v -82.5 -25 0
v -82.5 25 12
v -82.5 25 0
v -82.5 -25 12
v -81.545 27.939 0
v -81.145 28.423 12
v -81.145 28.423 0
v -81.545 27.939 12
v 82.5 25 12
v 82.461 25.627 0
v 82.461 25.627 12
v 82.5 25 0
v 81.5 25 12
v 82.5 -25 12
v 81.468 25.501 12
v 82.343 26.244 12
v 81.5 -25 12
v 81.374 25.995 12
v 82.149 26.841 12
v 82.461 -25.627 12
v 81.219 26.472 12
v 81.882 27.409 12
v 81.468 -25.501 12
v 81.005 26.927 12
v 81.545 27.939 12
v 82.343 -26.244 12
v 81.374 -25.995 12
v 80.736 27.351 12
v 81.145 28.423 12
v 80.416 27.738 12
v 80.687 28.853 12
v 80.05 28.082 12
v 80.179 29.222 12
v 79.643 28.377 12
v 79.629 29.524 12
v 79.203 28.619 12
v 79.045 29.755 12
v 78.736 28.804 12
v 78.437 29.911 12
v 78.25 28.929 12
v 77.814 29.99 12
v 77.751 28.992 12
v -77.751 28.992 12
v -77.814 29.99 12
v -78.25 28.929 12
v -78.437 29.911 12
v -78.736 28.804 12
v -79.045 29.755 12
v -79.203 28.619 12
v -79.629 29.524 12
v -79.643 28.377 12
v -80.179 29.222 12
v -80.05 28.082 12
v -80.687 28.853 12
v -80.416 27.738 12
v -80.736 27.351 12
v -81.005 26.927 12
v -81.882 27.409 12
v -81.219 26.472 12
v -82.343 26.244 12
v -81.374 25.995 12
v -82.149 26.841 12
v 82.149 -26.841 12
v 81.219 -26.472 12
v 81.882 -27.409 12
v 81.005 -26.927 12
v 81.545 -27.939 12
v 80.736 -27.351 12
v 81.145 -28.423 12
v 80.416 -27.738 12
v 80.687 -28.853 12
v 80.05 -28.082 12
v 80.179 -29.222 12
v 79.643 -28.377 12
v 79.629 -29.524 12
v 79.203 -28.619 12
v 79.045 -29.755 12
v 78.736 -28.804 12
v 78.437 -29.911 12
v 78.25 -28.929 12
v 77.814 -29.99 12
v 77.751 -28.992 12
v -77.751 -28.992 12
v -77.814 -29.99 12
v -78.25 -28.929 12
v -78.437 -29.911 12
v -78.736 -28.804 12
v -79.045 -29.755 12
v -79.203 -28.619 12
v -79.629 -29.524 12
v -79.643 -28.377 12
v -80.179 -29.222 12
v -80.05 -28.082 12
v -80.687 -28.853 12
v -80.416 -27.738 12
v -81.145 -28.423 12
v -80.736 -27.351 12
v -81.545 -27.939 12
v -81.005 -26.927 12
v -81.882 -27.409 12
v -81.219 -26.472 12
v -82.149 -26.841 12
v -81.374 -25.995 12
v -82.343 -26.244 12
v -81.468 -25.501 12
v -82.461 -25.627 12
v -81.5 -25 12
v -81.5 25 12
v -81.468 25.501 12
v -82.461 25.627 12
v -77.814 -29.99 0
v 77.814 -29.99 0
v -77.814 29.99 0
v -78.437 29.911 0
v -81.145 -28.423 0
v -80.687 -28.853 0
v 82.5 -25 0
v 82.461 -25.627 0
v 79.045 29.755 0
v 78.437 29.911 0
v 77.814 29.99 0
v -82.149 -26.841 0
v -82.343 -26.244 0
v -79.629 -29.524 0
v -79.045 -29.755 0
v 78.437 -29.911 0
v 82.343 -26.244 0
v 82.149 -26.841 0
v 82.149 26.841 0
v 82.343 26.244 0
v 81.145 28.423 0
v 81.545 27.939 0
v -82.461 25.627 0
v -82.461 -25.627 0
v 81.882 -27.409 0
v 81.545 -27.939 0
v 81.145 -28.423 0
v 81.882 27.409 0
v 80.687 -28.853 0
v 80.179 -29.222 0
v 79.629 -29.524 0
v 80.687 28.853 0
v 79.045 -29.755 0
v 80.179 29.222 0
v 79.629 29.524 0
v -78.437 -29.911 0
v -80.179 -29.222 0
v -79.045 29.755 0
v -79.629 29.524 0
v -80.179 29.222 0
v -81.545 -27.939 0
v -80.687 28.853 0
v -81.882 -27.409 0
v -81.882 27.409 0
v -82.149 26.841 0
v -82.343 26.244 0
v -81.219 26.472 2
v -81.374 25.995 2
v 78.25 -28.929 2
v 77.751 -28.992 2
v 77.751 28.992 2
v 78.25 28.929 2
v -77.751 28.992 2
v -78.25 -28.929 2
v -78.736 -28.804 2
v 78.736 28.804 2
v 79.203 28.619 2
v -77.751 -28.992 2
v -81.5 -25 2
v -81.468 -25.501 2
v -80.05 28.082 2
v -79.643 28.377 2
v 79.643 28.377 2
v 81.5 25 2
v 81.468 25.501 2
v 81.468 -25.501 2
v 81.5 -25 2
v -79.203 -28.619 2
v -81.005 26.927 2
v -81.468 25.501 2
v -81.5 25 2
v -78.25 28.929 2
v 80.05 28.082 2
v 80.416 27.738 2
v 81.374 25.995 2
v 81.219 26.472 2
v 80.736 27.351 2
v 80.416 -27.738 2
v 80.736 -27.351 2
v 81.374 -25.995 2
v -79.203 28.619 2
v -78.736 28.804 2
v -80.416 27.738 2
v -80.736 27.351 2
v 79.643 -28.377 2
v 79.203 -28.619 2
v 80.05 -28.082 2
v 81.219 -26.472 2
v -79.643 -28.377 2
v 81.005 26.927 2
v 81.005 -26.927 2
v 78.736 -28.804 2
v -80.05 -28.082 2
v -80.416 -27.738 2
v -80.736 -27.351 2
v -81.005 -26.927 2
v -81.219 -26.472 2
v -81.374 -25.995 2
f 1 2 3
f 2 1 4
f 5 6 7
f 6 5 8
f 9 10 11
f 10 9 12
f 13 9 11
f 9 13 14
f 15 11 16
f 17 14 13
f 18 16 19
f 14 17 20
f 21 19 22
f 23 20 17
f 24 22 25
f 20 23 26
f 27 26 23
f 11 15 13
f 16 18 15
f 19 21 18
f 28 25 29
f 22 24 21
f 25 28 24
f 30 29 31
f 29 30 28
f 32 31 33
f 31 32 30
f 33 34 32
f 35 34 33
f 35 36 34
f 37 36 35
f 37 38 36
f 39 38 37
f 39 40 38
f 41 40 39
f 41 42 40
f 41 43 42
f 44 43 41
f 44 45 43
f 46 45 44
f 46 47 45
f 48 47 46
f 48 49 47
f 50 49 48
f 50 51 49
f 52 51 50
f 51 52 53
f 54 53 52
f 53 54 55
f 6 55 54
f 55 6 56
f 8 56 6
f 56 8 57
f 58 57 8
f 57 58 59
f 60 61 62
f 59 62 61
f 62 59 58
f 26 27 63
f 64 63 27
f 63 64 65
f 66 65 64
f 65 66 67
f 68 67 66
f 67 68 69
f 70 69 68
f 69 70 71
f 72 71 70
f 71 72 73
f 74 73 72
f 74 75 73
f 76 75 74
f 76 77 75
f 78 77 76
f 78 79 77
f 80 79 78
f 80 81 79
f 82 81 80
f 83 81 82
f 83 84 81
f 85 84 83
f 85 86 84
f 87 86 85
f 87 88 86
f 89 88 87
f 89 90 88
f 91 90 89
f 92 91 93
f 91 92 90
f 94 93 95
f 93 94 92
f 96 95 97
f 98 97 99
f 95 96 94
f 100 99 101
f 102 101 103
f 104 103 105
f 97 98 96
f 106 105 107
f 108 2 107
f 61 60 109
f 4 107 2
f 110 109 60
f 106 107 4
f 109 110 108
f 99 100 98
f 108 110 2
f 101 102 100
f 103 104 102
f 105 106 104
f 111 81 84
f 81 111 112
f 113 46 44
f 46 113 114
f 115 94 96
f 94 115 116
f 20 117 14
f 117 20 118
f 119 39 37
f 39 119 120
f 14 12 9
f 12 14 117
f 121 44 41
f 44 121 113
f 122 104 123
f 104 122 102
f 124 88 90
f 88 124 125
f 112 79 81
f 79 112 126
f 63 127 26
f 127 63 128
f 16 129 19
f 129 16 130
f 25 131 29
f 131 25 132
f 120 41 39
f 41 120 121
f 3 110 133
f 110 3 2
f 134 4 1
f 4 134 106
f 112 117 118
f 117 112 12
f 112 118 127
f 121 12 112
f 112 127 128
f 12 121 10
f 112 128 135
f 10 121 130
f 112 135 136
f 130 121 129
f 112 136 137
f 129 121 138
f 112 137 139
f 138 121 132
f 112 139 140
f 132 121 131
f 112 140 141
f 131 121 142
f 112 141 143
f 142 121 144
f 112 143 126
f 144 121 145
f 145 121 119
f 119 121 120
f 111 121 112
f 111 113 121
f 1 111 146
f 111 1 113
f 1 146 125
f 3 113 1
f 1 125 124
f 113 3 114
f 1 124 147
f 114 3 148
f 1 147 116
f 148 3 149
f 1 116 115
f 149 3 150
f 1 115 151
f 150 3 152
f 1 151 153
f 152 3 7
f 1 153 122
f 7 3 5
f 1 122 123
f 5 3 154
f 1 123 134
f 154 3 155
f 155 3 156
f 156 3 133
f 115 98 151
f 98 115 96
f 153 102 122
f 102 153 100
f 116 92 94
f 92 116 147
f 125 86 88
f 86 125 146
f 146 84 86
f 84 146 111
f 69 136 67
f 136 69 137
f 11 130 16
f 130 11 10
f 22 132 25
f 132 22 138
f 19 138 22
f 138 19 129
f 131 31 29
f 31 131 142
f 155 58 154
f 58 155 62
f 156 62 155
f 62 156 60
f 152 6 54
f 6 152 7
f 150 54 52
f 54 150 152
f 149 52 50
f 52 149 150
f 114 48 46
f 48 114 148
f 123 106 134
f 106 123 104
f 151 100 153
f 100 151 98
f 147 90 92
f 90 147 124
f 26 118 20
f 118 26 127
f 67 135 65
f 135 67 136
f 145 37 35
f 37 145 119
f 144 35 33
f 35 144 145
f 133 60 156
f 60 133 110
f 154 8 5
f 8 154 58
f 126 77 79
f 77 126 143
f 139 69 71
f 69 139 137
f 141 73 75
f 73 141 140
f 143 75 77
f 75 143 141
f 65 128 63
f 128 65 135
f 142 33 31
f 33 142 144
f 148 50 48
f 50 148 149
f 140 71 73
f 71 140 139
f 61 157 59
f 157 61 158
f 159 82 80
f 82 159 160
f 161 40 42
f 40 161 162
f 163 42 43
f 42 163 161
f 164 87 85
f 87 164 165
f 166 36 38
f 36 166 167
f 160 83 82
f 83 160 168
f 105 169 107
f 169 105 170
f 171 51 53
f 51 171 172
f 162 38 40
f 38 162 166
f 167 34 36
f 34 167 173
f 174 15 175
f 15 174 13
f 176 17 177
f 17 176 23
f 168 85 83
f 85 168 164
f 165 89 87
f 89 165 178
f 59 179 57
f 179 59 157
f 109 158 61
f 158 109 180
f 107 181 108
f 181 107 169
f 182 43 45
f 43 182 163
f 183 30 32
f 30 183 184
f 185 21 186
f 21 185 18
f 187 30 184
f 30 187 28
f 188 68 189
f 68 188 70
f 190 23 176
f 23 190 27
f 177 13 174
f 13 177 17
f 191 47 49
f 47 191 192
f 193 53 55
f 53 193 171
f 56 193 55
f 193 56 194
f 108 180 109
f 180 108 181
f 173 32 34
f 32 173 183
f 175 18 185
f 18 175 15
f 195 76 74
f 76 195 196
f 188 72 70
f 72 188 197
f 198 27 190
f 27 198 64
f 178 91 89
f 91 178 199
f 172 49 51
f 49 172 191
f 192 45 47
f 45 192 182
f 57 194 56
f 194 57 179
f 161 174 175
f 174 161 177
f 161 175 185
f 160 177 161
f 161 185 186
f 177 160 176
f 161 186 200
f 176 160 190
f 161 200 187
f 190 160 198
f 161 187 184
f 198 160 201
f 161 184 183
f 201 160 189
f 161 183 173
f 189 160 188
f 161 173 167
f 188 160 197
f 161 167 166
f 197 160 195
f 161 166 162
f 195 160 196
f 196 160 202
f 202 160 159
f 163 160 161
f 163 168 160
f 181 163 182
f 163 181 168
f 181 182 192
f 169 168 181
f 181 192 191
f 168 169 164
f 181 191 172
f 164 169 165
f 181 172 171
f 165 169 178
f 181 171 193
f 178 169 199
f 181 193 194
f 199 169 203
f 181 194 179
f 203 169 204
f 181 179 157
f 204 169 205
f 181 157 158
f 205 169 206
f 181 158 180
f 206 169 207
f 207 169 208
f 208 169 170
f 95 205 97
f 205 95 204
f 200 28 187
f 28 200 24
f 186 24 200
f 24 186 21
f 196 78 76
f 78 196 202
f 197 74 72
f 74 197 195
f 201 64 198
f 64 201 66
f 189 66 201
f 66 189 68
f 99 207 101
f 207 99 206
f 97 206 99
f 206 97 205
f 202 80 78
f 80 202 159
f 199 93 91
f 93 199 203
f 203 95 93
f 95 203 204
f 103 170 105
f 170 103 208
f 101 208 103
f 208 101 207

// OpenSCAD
$fn = 50;


difference() {
	union() {
		hull() {
			translate(v = [-77.5000000000, 25.0000000000, 0]) {
				cylinder(h = 12, r = 5);
			}
			translate(v = [77.5000000000, 25.0000000000, 0]) {
				cylinder(h = 12, r = 5);
			}
			translate(v = [-77.5000000000, -25.0000000000, 0]) {
				cylinder(h = 12, r = 5);
			}
			translate(v = [77.5000000000, -25.0000000000, 0]) {
				cylinder(h = 12, r = 5);
			}
		}
	}
	union() {
		translate(v = [0, 0, 2]) {
			hull() {
				translate(v = [-77.5000000000, 25.0000000000, 0]) {
					cylinder(h = 10, r = 4);
				}
				translate(v = [77.5000000000, 25.0000000000, 0]) {
					cylinder(h = 10, r = 4);
				}
				translate(v = [-77.5000000000, -25.0000000000, 0]) {
					cylinder(h = 10, r = 4);
				}
				translate(v = [77.5000000000, -25.0000000000, 0]) {
					cylinder(h = 10, r = 4);
				}
			}
		}
	}
}
